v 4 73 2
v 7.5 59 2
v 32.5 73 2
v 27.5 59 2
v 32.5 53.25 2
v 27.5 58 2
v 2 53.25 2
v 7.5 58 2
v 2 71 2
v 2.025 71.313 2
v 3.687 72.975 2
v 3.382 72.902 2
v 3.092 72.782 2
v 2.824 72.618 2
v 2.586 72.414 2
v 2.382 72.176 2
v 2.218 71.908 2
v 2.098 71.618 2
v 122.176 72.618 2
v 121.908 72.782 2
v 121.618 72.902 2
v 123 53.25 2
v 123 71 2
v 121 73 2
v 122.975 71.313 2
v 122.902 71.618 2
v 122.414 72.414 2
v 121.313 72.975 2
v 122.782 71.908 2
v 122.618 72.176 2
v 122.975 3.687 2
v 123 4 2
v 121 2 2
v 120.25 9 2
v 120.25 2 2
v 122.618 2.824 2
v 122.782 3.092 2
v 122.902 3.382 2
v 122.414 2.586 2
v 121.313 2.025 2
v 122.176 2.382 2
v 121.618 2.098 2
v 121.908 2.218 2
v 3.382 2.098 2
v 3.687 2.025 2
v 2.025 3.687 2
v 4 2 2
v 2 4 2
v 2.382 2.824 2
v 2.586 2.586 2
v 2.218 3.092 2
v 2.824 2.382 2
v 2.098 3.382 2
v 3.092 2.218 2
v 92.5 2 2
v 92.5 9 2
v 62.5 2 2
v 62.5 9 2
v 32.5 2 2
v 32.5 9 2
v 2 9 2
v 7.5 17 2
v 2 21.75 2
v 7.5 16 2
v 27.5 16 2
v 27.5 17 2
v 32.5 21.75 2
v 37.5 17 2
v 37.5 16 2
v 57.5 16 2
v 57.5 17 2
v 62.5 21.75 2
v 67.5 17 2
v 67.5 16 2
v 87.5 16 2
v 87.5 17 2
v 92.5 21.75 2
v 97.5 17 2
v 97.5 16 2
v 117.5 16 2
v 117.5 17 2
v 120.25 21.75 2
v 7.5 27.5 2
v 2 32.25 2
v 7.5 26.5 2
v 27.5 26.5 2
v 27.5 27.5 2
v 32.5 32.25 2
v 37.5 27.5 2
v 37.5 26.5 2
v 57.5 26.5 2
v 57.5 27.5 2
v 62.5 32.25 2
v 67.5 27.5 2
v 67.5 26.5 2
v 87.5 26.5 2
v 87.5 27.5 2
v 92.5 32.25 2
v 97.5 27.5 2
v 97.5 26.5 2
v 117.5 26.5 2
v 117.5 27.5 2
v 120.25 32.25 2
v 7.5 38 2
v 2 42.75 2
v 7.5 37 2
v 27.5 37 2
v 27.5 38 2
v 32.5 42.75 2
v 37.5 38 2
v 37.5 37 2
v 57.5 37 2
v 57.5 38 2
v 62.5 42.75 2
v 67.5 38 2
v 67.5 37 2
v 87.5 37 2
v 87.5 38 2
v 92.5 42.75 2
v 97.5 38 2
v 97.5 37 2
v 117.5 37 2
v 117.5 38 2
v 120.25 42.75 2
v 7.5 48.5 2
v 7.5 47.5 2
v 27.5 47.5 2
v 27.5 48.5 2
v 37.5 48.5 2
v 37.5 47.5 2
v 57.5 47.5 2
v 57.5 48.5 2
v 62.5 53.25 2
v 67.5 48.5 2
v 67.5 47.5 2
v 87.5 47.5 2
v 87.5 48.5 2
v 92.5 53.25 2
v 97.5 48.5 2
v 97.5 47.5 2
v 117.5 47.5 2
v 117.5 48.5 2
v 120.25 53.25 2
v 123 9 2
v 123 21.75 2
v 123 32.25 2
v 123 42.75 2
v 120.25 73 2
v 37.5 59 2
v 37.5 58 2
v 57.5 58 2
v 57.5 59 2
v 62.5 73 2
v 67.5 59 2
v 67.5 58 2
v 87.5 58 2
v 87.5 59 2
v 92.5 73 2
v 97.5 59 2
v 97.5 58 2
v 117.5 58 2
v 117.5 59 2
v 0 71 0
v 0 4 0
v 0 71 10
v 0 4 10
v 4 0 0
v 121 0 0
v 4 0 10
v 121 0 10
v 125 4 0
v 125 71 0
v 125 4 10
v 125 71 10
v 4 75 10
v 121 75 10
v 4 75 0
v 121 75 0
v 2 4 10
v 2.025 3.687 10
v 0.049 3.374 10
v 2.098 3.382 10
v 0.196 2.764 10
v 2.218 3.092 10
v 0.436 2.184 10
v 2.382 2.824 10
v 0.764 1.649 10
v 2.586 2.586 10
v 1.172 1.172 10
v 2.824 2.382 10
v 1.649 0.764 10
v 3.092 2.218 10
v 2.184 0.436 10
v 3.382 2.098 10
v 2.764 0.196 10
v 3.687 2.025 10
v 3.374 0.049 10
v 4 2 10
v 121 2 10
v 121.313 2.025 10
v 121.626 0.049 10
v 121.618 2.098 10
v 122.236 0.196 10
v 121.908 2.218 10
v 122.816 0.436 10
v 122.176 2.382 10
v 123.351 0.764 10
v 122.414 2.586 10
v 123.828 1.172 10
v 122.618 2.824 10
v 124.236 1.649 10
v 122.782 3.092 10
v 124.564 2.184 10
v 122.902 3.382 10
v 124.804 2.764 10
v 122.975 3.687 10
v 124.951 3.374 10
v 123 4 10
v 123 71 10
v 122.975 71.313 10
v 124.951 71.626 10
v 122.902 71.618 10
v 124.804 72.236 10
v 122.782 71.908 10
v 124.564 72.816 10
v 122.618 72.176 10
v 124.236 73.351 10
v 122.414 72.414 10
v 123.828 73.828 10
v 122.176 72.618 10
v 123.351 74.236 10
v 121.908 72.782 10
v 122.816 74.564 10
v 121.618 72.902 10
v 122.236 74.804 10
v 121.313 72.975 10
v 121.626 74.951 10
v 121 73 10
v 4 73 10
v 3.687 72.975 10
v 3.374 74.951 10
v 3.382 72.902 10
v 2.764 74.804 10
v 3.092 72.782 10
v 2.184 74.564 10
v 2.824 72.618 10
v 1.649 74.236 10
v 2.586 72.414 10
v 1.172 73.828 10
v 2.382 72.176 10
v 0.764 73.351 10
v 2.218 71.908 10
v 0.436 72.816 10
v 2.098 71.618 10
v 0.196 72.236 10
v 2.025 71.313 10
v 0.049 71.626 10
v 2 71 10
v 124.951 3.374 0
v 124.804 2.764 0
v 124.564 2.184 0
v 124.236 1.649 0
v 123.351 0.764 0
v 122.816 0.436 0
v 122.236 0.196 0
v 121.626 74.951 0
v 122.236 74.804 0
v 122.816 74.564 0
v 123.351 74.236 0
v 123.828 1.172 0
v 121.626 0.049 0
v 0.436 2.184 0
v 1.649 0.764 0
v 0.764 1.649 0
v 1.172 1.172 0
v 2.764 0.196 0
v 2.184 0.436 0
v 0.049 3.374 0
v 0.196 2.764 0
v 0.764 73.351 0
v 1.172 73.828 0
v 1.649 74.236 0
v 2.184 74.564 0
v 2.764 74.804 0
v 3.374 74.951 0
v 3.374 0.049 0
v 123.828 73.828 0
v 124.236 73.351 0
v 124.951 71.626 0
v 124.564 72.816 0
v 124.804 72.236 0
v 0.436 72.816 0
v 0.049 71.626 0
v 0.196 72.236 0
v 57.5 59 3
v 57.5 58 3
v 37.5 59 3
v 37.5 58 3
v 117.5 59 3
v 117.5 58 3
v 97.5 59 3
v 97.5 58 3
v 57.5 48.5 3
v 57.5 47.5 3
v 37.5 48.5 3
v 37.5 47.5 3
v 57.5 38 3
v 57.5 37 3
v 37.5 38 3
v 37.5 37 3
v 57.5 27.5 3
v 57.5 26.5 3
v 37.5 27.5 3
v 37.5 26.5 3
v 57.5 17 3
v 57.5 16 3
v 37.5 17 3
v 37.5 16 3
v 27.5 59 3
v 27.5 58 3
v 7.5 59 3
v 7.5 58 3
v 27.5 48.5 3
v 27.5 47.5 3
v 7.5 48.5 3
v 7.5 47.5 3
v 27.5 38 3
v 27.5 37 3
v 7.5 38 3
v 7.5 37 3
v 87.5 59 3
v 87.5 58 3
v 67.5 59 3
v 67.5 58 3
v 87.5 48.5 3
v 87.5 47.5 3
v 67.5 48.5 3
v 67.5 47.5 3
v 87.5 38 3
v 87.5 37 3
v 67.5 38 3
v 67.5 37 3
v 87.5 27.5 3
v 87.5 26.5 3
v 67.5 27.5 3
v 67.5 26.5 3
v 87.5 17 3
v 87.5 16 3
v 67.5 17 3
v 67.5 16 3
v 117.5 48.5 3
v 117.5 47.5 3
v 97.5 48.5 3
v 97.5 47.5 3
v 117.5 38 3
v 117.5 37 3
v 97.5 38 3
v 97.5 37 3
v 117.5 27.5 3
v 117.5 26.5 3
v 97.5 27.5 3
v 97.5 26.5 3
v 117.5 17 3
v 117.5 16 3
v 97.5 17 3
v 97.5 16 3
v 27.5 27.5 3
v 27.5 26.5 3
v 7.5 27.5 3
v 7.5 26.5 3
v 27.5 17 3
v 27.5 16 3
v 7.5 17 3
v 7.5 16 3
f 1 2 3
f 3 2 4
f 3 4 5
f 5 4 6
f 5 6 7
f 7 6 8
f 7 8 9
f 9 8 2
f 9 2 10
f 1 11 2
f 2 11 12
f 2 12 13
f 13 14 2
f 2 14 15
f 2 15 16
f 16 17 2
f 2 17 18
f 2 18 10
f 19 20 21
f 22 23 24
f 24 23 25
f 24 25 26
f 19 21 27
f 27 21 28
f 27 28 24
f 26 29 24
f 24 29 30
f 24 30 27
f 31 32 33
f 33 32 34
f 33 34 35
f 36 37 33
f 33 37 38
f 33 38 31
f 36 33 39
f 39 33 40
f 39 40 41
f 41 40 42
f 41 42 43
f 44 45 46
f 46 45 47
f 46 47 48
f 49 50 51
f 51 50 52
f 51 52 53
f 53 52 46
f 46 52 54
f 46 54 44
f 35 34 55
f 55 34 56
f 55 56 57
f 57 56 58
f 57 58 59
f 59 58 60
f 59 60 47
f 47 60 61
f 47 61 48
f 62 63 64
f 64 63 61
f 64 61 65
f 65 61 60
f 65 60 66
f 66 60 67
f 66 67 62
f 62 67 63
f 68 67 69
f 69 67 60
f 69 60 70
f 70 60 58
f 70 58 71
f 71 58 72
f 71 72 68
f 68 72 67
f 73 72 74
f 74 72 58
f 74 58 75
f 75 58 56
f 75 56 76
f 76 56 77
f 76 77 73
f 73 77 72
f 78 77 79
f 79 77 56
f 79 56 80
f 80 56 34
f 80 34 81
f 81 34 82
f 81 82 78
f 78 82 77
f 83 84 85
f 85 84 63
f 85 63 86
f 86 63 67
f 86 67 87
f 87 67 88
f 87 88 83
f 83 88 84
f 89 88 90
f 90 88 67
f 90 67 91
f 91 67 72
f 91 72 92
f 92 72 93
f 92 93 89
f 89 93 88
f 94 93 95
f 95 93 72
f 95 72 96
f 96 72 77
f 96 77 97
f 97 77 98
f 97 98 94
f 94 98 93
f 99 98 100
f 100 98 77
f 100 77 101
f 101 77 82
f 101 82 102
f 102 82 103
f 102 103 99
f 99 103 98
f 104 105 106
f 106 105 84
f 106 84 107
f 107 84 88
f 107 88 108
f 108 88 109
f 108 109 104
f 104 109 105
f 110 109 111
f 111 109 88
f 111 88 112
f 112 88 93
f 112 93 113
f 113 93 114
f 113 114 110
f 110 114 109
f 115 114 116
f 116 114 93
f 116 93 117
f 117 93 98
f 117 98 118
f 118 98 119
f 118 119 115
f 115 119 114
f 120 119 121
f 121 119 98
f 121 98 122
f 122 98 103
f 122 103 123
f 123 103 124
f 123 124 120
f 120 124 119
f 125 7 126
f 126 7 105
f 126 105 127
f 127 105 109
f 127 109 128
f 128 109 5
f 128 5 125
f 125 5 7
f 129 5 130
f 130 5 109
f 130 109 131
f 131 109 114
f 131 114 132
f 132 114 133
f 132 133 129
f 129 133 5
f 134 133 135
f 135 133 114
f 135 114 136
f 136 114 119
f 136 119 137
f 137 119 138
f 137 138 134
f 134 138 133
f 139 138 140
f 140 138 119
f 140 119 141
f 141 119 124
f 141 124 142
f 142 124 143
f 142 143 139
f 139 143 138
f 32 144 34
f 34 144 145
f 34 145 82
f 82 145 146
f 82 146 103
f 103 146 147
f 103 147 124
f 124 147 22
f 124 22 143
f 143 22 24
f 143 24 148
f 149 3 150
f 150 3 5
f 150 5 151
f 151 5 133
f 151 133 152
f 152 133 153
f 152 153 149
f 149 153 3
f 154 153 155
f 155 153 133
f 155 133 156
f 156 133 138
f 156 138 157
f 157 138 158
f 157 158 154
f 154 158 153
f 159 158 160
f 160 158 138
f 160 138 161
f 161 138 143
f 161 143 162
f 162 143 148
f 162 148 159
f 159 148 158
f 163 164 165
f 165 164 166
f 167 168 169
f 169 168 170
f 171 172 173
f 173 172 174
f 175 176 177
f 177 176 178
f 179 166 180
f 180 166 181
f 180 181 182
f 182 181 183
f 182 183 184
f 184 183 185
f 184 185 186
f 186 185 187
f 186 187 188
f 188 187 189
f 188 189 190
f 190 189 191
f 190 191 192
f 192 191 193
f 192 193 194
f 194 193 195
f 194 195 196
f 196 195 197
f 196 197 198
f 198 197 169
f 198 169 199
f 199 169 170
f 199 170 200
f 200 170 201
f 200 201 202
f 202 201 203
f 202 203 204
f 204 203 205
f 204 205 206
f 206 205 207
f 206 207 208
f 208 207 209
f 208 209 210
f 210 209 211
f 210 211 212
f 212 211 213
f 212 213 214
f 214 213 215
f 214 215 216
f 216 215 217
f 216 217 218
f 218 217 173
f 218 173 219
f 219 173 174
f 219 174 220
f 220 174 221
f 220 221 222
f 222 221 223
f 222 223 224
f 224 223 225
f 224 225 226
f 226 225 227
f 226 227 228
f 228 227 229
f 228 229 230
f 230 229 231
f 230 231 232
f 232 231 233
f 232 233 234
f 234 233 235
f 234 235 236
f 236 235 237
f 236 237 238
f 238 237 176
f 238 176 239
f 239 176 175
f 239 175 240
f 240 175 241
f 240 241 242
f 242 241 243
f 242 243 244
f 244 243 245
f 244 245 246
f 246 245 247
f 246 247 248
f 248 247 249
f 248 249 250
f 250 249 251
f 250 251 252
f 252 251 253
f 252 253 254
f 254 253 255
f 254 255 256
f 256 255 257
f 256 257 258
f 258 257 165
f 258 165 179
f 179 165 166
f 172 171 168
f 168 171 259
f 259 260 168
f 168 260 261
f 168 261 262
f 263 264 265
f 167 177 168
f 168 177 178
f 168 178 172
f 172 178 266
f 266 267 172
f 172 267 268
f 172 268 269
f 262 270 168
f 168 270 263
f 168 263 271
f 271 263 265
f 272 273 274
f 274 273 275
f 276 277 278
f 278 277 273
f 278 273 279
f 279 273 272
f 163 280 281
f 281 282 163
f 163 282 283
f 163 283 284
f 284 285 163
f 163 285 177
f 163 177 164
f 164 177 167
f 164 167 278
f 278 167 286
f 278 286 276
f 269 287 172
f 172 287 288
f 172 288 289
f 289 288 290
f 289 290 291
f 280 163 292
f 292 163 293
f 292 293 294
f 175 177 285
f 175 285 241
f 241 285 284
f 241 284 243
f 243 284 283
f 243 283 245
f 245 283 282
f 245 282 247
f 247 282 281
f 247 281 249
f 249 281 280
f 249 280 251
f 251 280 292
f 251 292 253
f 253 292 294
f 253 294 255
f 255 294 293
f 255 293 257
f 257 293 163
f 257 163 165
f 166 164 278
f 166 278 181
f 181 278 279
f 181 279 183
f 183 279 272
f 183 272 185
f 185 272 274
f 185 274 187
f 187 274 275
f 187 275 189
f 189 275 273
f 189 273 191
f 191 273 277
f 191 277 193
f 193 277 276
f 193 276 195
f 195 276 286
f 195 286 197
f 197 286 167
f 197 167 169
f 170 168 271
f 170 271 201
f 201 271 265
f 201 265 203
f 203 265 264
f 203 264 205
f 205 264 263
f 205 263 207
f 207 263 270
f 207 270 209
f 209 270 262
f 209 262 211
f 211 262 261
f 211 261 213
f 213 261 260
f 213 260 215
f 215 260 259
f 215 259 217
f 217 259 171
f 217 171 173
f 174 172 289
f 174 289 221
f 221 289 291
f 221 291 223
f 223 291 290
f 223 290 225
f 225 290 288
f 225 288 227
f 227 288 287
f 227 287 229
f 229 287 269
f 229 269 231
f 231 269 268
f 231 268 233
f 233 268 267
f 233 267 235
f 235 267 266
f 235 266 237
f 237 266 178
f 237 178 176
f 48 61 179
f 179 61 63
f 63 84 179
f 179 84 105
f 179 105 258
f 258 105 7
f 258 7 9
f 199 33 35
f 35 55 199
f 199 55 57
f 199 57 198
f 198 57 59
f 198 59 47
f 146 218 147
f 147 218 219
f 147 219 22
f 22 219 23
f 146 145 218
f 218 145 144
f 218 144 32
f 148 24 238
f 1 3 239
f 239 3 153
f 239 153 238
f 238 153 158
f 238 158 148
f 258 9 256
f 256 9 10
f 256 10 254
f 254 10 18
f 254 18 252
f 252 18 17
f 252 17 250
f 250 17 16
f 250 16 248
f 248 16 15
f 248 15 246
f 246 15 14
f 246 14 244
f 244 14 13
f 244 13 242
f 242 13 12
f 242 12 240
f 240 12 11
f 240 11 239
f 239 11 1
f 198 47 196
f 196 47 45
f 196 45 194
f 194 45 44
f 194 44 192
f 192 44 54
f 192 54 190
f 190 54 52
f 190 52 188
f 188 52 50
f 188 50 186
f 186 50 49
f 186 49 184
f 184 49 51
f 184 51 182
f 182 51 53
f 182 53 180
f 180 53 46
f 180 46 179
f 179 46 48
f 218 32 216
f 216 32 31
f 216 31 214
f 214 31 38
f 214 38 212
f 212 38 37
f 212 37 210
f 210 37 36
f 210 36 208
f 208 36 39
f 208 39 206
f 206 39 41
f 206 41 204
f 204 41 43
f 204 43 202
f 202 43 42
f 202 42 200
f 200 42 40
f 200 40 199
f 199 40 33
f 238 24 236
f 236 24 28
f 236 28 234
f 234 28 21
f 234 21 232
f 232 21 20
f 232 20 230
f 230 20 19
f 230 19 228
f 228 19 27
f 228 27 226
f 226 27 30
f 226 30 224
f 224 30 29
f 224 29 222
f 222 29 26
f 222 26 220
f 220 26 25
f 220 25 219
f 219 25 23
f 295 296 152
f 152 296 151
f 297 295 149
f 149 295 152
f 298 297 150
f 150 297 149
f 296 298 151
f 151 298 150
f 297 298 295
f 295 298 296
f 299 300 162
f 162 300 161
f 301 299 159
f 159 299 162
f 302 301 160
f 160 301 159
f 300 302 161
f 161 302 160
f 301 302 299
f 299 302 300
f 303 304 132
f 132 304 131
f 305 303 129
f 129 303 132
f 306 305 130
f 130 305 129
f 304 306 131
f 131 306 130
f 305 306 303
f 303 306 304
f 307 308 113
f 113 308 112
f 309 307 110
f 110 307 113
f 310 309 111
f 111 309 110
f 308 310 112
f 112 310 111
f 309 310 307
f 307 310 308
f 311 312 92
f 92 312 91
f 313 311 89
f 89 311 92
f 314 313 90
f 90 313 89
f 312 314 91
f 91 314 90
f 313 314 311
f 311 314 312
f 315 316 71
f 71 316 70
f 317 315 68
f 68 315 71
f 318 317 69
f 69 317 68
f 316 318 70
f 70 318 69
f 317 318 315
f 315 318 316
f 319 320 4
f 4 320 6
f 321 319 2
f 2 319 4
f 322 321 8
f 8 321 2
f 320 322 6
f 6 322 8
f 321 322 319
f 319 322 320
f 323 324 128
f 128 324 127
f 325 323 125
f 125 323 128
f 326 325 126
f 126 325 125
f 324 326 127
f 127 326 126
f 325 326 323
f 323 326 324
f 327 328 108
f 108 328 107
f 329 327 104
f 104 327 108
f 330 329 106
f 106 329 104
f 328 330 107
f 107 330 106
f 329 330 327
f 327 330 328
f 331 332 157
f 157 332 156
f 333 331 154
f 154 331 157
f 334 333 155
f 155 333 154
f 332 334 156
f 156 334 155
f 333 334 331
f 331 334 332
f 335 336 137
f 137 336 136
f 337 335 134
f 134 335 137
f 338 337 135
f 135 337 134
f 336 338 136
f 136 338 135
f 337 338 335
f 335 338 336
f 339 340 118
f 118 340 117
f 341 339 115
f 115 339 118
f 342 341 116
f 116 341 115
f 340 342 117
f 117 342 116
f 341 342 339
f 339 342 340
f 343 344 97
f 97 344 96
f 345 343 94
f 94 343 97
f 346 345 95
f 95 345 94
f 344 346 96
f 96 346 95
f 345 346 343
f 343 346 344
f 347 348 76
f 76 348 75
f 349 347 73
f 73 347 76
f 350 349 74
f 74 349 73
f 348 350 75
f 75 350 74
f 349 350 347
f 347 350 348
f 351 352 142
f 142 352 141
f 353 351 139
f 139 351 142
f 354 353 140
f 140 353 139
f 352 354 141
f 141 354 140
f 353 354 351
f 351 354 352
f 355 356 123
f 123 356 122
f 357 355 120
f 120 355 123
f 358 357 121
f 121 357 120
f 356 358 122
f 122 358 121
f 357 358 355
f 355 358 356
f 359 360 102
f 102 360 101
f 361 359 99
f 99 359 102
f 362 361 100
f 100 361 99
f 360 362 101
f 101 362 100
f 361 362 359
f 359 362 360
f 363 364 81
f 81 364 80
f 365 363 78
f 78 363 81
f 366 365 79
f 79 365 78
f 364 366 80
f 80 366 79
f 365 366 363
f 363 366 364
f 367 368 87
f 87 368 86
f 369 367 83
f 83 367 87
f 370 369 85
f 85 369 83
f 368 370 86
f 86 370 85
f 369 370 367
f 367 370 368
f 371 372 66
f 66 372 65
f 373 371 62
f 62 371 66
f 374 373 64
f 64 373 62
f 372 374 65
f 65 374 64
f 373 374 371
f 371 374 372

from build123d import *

# Parameters (mm, degrees)
SKETCH1_W           = 125
SKETCH1_H           = 75
BOSS_EXTRUDE1_DEPTH = 10
FILLET1_R           = 4
SHELL1_T            = -2
SKETCH2_W           = 20
SKETCH2_H           = 1
BOSS_EXTRUDE2_DEPTH = 1


with BuildPart() as part:
    # Sketch1 → Boss-Extrude1 (new body)
    with BuildSketch(Plane.XY):
        with Locations((62.5, 37.5)):
            Rectangle(SKETCH1_W, SKETCH1_H)
    extrude(amount=BOSS_EXTRUDE1_DEPTH)

    # Fillet1
    fillet1_edges = [part.edges().sort_by_distance(p)[0] for p in [
        (0, 75, 5),
        (125, 75, 5),
        (125, 0, 5),
        (0, 0, 5),
    ]]
    fillet(fillet1_edges, radius=FILLET1_R)

    # Shell1
    shell1_openings = [part.faces().sort_by_distance(p)[0] for p in [
        (62.5, 37.5, 10),
    ]]
    offset(amount=SHELL1_T, openings=shell1_openings, kind=Kind.INTERSECTION)

    # Sketch2 → Boss-Extrude2 (add)
    with BuildSketch(Plane.XY.offset(2)):
        with Locations((107.5, 58.5)):
            Rectangle(SKETCH2_W, SKETCH2_H)
        with Locations((77.5, 58.5)):
            Rectangle(SKETCH2_W, SKETCH2_H)
        with Locations((77.5, 48)):
            Rectangle(SKETCH2_W, SKETCH2_H)
        with Locations((77.5, 37.5)):
            Rectangle(SKETCH2_W, SKETCH2_H)
        with Locations((77.5, 27)):
            Rectangle(SKETCH2_W, SKETCH2_H)
        with Locations((77.5, 16.5)):
            Rectangle(SKETCH2_W, SKETCH2_H)
        with Locations((107.5, 48)):
            Rectangle(SKETCH2_W, SKETCH2_H)
        with Locations((107.5, 37.5)):
            Rectangle(SKETCH2_W, SKETCH2_H)
        with Locations((107.5, 27)):
            Rectangle(SKETCH2_W, SKETCH2_H)
        with Locations((107.5, 16.5)):
            Rectangle(SKETCH2_W, SKETCH2_H)
        with Locations((47.5, 58.5)):
            Rectangle(SKETCH2_W, SKETCH2_H)
        with Locations((47.5, 48)):
            Rectangle(SKETCH2_W, SKETCH2_H)
        with Locations((47.5, 37.5)):
            Rectangle(SKETCH2_W, SKETCH2_H)
        with Locations((47.5, 27)):
            Rectangle(SKETCH2_W, SKETCH2_H)
        with Locations((47.5, 16.5)):
            Rectangle(SKETCH2_W, SKETCH2_H)
        with Locations((17.5, 58.5)):
            Rectangle(SKETCH2_W, SKETCH2_H)
        with Locations((17.5, 48)):
            Rectangle(SKETCH2_W, SKETCH2_H)
        with Locations((17.5, 37.5)):
            Rectangle(SKETCH2_W, SKETCH2_H)
        with Locations((17.5, 27)):
            Rectangle(SKETCH2_W, SKETCH2_H)
        with Locations((17.5, 16.5)):
            Rectangle(SKETCH2_W, SKETCH2_H)
    extrude(amount=BOSS_EXTRUDE2_DEPTH)


solid = part.part
